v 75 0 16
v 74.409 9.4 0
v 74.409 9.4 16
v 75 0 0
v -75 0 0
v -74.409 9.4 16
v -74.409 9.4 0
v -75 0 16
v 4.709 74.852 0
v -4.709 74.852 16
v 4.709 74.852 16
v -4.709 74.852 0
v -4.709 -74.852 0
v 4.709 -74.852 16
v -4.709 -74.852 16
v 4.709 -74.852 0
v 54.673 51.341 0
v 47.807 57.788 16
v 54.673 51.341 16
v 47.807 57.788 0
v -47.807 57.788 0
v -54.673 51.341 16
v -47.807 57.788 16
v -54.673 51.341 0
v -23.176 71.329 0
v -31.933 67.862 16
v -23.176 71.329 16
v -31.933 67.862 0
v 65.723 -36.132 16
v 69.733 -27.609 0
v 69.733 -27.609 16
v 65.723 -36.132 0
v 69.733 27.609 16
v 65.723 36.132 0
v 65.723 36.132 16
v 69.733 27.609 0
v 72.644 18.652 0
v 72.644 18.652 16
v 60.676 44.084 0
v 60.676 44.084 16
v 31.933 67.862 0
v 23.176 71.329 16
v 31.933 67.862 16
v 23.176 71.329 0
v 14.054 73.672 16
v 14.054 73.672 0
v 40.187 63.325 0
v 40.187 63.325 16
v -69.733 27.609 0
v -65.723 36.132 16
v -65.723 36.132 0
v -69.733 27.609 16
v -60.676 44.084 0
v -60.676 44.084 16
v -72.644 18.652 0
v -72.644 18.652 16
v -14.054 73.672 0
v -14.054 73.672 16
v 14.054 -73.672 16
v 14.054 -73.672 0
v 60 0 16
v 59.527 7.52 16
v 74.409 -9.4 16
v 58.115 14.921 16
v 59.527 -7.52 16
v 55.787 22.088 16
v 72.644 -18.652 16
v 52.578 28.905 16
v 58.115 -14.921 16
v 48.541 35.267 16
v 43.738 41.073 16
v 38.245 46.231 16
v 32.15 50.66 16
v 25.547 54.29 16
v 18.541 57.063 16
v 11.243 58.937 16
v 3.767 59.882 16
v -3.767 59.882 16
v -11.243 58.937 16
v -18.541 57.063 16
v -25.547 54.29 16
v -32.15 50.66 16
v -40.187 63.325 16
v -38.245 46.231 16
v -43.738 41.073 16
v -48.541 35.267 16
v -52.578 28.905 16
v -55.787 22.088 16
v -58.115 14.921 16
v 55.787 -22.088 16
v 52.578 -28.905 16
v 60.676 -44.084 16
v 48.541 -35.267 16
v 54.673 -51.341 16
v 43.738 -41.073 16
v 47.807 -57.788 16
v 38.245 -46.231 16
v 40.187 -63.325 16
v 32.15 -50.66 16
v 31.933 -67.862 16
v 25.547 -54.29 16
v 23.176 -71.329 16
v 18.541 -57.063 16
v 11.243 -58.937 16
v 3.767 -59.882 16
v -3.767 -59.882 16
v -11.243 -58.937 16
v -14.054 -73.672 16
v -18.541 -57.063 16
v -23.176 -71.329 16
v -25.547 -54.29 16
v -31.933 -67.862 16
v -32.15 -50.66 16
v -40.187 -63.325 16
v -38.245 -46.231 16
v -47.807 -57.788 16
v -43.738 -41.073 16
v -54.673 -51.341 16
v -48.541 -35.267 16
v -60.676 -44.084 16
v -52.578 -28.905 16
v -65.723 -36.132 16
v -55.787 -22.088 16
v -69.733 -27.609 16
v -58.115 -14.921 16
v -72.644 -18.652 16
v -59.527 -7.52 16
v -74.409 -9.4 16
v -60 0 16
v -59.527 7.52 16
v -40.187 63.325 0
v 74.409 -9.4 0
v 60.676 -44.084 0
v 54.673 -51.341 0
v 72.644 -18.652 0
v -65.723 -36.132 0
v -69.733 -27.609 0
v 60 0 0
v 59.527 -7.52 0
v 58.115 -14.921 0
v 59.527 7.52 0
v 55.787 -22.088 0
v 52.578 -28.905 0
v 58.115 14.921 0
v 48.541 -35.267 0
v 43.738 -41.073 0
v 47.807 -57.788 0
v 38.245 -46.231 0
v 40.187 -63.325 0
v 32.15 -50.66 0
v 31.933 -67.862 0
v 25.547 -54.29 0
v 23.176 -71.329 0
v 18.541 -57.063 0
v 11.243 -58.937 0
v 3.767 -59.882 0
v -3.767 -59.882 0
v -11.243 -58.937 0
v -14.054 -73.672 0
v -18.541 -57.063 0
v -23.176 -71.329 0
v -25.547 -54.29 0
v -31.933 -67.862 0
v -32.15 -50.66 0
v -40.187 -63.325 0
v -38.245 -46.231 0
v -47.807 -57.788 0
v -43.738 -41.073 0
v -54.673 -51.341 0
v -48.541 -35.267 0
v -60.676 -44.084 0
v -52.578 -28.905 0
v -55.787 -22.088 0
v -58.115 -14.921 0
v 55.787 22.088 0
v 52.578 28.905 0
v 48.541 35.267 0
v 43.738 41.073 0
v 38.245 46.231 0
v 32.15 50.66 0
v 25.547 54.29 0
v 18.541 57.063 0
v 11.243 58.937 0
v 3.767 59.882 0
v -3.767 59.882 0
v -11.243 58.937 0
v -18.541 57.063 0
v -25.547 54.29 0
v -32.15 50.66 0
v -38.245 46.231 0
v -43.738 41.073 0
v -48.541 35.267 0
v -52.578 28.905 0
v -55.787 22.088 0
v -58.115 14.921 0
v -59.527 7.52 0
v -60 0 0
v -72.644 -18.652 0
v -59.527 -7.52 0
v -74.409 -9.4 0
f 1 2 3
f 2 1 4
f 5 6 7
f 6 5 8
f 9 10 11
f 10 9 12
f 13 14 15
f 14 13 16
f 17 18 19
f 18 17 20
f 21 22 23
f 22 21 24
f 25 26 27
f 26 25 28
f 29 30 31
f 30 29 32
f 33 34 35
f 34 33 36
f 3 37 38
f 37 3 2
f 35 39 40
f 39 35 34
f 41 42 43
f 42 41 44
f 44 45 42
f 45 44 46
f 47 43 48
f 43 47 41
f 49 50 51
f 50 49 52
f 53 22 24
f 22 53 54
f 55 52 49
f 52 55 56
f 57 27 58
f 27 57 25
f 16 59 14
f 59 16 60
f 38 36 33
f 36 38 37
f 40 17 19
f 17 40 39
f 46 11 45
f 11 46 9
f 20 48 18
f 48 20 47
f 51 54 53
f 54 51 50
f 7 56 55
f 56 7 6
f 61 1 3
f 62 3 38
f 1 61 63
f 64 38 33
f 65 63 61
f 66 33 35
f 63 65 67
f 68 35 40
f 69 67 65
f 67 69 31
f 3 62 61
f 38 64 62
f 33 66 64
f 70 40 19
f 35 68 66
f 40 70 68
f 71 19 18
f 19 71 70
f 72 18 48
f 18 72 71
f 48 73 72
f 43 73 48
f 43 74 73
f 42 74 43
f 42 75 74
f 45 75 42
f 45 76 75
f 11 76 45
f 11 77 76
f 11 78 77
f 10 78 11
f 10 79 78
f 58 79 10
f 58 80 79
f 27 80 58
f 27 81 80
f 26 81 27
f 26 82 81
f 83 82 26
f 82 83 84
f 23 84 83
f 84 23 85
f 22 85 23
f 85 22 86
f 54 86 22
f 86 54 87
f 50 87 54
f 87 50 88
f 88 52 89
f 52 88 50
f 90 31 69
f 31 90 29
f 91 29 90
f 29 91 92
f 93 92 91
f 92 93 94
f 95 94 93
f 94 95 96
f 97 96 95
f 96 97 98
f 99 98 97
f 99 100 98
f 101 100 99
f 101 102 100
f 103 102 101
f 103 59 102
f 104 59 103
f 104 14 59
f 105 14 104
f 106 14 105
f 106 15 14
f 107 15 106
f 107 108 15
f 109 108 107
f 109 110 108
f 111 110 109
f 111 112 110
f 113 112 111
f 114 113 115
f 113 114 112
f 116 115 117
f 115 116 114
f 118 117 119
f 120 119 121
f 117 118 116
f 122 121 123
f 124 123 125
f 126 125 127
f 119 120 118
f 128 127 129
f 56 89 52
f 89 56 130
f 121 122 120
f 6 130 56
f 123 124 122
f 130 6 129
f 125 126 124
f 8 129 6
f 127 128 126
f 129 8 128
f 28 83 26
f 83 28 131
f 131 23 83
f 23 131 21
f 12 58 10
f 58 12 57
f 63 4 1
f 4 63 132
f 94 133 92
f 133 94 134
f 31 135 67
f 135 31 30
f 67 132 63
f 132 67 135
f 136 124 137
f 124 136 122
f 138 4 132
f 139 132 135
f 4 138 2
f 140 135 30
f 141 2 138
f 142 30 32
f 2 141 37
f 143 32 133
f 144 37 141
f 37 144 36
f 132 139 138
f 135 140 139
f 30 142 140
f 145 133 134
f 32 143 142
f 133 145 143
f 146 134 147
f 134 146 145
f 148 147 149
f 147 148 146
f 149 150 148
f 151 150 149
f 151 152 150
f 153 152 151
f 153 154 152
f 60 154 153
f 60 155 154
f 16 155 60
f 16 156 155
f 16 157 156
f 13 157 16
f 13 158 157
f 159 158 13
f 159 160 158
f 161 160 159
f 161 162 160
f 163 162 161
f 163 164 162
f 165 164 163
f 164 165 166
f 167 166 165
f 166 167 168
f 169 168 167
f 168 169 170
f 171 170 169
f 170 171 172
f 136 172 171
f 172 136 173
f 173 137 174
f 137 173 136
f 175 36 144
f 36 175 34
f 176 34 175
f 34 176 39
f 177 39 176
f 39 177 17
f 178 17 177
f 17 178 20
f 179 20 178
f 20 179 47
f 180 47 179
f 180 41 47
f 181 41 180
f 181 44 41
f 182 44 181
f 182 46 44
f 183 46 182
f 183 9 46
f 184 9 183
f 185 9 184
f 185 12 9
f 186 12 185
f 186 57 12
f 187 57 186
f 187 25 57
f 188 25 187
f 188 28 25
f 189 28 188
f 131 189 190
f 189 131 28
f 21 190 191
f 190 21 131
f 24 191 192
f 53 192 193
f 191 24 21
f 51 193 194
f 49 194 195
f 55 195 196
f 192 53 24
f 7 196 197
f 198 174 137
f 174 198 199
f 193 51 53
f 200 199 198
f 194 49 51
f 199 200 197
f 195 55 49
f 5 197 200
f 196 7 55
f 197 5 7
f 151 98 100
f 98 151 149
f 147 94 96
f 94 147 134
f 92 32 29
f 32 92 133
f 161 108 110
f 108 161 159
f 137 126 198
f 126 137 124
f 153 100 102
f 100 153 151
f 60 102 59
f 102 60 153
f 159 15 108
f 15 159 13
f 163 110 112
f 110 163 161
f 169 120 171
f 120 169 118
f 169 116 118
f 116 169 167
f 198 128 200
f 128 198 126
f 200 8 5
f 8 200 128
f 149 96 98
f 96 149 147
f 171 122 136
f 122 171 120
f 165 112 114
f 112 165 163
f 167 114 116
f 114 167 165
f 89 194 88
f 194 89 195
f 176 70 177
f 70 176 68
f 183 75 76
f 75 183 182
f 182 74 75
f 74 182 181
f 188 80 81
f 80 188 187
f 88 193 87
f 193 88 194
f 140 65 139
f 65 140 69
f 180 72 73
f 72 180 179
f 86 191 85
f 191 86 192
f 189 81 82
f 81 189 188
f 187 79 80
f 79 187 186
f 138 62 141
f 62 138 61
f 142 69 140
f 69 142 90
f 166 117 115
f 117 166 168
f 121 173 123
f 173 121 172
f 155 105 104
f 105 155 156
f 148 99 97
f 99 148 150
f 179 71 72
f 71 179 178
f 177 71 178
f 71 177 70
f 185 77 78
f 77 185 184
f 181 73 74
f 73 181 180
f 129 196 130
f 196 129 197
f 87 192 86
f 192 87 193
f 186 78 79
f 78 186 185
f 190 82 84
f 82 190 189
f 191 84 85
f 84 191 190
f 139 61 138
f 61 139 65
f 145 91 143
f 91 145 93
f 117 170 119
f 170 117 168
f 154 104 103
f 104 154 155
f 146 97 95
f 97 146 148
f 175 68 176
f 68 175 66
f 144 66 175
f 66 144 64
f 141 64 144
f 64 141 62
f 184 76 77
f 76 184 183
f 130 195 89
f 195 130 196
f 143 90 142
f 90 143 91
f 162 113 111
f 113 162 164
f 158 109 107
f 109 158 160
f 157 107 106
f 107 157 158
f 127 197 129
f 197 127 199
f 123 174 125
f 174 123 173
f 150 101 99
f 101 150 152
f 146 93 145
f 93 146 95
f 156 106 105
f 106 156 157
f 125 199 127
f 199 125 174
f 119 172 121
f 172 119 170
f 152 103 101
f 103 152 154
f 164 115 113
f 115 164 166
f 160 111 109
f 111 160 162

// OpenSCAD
$fn = 50;


difference() {
	union() {
		cylinder(h = 16, r = 75.0000000000);
	}
	union() {
		cylinder(h = 16, r = 60.0000000000);
	}
}
